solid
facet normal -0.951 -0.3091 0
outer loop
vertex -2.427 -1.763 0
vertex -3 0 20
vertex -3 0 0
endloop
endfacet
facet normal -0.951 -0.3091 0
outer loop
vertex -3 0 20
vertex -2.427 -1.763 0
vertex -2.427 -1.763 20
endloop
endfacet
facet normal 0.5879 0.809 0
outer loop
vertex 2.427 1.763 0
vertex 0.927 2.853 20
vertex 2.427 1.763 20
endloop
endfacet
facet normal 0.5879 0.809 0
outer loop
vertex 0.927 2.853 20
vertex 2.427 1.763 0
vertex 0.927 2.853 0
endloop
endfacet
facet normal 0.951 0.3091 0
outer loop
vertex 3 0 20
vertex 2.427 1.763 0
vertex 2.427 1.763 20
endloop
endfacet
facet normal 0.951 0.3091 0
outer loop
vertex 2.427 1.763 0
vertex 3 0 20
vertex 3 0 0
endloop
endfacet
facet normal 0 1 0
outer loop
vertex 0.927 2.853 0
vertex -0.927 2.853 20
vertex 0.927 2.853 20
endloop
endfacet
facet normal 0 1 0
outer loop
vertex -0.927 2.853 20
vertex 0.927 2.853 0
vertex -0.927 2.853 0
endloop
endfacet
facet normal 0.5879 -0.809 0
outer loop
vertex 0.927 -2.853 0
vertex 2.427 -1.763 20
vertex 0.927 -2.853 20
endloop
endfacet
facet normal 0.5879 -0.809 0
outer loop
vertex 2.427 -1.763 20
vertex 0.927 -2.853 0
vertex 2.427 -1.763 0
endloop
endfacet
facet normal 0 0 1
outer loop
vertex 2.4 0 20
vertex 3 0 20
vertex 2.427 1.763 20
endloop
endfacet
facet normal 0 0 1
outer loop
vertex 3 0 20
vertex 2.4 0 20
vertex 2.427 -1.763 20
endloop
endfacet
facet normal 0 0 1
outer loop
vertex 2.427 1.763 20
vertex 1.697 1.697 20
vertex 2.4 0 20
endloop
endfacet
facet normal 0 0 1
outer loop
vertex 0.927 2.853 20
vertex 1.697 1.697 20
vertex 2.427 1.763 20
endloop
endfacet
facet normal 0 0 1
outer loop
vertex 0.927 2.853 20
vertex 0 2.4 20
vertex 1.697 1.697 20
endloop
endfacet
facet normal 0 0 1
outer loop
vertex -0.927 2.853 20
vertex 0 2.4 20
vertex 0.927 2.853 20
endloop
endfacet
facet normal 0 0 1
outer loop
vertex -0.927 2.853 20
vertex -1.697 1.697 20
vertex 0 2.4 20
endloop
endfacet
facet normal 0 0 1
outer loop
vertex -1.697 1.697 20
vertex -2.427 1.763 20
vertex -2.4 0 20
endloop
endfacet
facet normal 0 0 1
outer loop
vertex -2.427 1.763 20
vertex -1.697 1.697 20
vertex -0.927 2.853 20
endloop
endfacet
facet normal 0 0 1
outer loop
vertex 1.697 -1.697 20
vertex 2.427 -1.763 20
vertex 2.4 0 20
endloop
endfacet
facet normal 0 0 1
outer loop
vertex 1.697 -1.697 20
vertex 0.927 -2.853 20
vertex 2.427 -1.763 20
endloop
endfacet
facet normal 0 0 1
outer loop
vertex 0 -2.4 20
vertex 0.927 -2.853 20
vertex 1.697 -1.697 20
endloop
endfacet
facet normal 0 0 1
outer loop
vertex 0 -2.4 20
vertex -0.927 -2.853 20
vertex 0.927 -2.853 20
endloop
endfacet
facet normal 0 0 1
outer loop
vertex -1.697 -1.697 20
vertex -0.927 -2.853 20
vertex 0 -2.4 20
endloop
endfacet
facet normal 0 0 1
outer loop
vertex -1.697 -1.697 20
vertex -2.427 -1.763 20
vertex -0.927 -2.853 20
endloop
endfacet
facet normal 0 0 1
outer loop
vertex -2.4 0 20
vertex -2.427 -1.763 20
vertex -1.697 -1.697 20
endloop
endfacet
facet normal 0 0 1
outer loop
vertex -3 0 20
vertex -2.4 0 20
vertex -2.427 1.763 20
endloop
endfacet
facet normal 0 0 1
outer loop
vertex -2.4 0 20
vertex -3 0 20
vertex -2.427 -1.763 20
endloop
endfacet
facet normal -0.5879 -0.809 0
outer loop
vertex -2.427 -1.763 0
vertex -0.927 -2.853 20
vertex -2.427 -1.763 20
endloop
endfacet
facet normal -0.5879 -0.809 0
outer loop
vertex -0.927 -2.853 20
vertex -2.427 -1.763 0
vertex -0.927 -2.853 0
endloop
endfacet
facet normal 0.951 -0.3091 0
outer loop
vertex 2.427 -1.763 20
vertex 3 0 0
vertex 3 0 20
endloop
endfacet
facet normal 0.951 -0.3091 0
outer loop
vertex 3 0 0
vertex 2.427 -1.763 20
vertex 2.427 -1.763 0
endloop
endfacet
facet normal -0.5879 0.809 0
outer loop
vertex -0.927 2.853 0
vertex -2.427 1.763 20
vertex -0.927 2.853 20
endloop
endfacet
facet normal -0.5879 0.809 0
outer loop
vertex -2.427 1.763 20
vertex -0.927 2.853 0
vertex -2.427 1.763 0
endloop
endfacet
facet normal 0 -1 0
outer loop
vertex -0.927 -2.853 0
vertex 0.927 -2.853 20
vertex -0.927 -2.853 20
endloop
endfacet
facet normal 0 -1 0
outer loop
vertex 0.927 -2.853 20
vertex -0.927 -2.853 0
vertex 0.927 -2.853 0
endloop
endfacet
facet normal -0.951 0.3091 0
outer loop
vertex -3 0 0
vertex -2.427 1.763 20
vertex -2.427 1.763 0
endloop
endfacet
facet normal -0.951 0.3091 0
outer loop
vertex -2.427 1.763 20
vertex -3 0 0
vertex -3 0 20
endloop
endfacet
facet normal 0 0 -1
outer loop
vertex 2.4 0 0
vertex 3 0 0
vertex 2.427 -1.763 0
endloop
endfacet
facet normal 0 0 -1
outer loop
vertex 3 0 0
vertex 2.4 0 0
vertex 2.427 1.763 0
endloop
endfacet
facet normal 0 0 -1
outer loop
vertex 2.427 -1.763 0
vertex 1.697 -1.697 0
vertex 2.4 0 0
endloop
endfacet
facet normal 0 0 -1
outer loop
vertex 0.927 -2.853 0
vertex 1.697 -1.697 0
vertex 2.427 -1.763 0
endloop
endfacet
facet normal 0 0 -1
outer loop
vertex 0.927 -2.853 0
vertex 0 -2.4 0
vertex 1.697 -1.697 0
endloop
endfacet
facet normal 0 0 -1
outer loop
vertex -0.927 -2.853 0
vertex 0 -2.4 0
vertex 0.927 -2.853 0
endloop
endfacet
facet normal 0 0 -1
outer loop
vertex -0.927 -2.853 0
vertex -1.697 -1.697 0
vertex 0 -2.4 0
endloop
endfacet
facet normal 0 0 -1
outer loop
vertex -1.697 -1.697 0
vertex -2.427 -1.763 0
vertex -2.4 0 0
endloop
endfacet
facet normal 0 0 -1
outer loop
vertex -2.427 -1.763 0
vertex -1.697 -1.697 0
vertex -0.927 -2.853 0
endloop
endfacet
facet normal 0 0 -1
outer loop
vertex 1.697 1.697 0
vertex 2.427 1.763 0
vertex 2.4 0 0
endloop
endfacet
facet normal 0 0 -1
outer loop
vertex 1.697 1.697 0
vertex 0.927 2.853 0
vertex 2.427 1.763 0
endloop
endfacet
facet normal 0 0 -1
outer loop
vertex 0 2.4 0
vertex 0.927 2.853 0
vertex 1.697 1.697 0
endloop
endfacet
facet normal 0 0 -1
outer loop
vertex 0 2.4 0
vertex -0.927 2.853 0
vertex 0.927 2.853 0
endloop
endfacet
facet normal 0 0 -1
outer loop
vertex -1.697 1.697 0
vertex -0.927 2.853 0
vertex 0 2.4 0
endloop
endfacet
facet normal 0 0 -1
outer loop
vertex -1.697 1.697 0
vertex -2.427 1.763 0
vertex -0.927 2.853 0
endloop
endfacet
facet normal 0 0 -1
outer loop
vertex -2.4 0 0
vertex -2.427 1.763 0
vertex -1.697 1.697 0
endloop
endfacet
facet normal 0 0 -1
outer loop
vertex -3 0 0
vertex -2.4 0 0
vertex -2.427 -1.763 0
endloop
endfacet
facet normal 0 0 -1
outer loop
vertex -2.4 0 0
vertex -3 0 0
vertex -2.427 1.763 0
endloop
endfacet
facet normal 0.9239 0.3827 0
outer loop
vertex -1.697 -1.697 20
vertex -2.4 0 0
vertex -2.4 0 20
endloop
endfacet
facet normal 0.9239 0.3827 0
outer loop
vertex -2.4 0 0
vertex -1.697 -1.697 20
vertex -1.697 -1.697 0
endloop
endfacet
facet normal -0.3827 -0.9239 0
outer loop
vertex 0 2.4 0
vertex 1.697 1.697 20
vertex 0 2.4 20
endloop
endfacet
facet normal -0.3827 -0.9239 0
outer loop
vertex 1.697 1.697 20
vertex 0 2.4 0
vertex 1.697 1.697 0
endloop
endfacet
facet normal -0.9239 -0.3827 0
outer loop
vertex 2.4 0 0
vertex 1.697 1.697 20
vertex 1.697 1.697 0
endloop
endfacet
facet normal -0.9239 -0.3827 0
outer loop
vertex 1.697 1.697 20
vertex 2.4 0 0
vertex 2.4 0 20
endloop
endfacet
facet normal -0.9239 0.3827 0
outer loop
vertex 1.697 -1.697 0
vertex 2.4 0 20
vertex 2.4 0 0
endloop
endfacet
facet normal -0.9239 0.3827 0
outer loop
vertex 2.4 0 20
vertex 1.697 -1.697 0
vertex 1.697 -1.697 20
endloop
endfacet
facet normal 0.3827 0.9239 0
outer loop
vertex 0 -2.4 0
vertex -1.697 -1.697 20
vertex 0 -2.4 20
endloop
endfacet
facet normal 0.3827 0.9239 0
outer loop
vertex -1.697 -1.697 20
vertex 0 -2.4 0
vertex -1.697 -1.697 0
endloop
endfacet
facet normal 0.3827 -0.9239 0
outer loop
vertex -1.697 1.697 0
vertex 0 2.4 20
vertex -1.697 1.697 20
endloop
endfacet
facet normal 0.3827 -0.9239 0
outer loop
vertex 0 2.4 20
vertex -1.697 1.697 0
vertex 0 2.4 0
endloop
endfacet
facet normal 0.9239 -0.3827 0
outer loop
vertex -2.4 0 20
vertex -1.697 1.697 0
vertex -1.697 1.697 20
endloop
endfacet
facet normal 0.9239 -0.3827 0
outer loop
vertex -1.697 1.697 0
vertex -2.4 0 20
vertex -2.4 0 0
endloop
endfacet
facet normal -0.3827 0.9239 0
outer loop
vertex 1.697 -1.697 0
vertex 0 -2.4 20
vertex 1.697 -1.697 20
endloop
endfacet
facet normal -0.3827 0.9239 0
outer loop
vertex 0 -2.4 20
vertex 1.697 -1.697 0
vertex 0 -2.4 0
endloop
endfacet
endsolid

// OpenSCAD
// Screw parameters
screw_diameter = 6;
thread_diameter = 1.2;
thread_pitch = 0.5;
head_diameter = 12;
head_height = 2;
shank_length = 20;
shank_diameter = screw_diameter;

module screw() {
  difference() {
    cylinder(h = shank_length, r = shank_diameter / 2, center = false);
    cylinder(h = shank_length, r = (screw_diameter - thread_diameter) / 2, center = false);

    for (i = [0:3]) {
      rotate([0, 0, i * 90]) {
        translate([head_diameter / 2, 0, 0]) {
          cylinder(h = thread_pitch, r = thread_diameter / 2, center = true);
        }
      }
    }
  }
}

screw();
